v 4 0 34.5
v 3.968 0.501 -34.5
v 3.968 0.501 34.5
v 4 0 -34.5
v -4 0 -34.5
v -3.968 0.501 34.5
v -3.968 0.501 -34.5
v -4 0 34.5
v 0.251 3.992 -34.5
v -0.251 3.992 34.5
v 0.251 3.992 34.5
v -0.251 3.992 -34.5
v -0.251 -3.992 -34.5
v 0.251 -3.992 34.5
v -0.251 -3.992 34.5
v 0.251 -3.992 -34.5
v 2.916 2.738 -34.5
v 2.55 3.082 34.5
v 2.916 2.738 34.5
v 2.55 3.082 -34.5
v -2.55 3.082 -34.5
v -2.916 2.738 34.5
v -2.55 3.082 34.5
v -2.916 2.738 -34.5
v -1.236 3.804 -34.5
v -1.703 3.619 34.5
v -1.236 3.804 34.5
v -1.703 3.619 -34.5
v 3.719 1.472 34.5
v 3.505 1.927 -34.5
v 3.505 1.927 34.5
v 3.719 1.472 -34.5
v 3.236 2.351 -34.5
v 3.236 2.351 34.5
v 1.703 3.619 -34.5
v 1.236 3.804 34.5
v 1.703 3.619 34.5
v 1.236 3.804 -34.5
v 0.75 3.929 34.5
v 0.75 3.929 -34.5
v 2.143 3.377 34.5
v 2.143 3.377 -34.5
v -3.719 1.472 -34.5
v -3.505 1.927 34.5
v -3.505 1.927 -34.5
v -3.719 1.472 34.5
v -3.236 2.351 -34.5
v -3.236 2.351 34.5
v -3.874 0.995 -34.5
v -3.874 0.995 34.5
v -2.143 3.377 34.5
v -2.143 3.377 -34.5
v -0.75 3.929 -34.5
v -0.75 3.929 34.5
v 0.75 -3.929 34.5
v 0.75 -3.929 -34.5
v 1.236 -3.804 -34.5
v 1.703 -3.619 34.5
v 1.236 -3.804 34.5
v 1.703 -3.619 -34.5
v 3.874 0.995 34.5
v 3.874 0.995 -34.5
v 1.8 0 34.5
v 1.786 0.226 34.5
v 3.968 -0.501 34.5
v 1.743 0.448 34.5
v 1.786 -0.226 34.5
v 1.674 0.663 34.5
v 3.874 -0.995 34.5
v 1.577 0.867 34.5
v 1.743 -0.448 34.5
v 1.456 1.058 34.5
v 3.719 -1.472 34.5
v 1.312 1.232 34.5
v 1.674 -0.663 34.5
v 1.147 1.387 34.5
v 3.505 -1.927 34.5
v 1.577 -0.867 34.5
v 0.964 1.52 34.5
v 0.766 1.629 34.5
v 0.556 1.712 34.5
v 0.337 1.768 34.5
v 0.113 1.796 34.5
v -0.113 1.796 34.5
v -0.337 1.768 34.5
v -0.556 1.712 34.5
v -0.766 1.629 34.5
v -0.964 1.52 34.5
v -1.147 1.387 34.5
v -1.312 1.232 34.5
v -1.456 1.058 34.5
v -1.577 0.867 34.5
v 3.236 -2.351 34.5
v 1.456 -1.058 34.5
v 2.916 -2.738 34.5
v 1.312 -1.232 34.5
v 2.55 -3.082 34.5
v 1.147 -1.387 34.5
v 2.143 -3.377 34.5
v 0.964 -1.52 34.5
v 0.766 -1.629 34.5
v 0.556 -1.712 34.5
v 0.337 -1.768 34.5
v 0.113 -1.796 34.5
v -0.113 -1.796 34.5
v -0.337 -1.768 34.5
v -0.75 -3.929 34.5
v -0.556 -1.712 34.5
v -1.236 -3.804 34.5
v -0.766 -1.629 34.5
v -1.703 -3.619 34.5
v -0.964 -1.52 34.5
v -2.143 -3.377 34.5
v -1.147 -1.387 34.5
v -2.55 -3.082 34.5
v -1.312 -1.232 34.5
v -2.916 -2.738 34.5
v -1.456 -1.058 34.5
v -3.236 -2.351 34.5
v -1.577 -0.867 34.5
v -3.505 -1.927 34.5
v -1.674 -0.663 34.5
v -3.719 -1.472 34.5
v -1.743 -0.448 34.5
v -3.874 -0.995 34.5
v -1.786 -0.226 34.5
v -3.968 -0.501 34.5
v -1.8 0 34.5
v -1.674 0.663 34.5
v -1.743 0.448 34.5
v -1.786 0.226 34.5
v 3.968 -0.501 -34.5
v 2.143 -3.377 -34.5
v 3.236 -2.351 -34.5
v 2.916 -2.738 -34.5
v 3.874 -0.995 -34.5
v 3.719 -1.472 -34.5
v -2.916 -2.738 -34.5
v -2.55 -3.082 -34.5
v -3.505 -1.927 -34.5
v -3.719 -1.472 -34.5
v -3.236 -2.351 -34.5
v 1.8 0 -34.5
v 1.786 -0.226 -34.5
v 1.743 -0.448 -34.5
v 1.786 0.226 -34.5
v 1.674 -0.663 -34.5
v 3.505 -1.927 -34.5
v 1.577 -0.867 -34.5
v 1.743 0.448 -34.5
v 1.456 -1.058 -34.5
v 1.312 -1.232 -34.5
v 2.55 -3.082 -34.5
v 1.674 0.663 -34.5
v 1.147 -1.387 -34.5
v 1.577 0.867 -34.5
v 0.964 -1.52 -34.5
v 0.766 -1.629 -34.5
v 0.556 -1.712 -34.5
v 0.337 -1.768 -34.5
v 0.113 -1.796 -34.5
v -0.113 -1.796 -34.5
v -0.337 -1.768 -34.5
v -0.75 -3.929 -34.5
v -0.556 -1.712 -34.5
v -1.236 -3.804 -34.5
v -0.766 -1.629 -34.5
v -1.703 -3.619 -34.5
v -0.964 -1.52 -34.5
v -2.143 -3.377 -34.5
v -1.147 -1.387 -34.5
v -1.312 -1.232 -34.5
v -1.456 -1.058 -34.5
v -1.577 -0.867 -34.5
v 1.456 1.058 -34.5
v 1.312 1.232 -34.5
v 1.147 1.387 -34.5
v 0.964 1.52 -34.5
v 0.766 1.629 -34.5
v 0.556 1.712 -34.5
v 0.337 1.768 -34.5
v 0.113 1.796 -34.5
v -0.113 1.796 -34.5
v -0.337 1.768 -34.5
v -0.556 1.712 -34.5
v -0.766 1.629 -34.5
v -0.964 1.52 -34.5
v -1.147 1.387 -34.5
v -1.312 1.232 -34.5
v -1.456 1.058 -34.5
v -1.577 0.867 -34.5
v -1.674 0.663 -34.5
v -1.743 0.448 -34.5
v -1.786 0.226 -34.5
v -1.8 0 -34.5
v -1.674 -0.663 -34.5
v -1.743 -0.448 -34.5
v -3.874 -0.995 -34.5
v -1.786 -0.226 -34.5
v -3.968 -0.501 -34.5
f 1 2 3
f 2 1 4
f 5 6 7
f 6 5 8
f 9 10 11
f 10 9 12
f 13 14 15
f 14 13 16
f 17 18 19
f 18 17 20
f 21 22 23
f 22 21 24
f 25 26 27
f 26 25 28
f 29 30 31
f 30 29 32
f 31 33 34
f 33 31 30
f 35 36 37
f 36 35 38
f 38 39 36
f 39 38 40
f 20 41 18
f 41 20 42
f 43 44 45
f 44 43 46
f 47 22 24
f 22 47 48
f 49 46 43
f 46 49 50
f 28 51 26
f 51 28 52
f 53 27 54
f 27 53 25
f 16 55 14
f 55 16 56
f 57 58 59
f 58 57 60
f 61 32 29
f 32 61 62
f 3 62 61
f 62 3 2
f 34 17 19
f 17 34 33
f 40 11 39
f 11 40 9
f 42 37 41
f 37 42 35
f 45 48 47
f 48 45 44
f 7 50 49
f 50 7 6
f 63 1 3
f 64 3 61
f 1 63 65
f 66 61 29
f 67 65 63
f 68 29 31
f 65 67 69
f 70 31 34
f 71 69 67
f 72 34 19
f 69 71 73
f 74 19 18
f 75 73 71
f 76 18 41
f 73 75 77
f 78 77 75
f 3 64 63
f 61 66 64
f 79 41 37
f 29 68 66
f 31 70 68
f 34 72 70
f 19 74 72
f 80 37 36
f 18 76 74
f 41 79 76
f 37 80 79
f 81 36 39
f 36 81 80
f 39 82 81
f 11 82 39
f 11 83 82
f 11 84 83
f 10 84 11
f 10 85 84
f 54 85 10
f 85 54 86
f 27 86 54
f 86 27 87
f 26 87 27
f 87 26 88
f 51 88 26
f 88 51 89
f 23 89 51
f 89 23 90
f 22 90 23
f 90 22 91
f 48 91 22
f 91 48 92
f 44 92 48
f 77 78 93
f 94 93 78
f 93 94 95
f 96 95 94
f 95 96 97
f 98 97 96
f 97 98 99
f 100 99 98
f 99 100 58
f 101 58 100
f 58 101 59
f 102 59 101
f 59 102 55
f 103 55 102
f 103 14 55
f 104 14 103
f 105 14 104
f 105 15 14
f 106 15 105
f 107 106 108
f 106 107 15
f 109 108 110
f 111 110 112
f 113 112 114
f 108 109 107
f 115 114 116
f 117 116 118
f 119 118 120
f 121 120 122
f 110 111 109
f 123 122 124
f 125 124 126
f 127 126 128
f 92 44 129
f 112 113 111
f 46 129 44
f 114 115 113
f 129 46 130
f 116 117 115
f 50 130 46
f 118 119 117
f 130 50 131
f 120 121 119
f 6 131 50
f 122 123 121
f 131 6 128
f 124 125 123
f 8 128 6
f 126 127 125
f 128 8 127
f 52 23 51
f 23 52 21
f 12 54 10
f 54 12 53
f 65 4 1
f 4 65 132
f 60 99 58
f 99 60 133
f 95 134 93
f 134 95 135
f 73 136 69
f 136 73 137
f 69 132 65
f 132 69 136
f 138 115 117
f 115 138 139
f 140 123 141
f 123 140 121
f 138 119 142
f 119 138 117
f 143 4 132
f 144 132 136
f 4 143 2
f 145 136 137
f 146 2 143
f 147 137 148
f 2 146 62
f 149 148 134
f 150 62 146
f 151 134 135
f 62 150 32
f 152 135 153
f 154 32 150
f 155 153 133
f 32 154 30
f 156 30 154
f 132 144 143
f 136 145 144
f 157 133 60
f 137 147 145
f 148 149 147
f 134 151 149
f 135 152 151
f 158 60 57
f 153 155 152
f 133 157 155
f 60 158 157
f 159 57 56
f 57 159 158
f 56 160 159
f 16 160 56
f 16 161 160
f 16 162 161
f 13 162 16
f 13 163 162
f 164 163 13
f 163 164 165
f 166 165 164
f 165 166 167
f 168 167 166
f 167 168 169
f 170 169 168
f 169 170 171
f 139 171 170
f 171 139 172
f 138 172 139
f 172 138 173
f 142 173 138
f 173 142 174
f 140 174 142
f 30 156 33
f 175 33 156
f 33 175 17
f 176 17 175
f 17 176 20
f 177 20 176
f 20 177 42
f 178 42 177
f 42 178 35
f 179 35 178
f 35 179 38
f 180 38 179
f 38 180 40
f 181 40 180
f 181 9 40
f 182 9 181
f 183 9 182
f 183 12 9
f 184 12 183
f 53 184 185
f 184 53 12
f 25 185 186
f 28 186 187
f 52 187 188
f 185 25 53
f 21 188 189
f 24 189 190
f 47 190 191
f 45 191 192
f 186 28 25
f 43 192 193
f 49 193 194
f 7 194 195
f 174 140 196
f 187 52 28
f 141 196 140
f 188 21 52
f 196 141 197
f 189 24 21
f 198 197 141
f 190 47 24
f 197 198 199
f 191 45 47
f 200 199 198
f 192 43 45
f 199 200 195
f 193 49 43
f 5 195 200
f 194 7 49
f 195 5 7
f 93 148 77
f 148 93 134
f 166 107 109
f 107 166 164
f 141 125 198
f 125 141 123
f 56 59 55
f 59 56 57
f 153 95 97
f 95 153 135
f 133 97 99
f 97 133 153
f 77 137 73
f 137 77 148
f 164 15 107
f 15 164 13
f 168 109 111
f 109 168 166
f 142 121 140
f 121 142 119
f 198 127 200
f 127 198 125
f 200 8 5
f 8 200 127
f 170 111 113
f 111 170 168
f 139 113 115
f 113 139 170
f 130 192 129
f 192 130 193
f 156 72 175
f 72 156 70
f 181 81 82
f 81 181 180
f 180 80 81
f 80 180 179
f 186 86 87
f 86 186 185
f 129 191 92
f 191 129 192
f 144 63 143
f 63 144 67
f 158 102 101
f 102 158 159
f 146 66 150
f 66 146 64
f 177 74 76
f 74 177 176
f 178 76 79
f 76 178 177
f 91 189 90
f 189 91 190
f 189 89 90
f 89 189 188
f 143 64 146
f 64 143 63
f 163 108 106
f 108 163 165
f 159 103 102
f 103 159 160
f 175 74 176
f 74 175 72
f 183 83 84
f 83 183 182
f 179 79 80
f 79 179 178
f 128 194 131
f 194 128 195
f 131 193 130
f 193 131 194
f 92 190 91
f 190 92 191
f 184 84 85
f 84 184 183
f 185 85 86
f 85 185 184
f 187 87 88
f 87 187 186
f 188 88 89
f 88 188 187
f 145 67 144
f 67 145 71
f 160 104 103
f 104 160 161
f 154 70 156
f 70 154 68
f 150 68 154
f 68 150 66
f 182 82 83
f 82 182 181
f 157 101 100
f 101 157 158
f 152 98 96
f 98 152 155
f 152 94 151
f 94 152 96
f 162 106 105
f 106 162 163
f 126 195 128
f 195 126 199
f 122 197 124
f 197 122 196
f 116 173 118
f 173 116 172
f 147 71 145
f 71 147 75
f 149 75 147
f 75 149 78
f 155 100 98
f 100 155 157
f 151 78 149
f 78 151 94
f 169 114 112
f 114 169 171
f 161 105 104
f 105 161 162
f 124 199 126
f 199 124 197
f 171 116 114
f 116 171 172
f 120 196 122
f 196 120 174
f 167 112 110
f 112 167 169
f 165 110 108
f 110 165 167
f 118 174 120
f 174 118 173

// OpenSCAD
$fn = 50;


difference() {
	union() {
		translate(v = [0, 0, -34.5000000000]) {
			cylinder(h = 69, r = 4.0000000000);
		}
	}
	union() {
		translate(v = [0, 0, -100.0000000000]) {
			cylinder(h = 200, r = 1.8000000000);
		}
	}
}
